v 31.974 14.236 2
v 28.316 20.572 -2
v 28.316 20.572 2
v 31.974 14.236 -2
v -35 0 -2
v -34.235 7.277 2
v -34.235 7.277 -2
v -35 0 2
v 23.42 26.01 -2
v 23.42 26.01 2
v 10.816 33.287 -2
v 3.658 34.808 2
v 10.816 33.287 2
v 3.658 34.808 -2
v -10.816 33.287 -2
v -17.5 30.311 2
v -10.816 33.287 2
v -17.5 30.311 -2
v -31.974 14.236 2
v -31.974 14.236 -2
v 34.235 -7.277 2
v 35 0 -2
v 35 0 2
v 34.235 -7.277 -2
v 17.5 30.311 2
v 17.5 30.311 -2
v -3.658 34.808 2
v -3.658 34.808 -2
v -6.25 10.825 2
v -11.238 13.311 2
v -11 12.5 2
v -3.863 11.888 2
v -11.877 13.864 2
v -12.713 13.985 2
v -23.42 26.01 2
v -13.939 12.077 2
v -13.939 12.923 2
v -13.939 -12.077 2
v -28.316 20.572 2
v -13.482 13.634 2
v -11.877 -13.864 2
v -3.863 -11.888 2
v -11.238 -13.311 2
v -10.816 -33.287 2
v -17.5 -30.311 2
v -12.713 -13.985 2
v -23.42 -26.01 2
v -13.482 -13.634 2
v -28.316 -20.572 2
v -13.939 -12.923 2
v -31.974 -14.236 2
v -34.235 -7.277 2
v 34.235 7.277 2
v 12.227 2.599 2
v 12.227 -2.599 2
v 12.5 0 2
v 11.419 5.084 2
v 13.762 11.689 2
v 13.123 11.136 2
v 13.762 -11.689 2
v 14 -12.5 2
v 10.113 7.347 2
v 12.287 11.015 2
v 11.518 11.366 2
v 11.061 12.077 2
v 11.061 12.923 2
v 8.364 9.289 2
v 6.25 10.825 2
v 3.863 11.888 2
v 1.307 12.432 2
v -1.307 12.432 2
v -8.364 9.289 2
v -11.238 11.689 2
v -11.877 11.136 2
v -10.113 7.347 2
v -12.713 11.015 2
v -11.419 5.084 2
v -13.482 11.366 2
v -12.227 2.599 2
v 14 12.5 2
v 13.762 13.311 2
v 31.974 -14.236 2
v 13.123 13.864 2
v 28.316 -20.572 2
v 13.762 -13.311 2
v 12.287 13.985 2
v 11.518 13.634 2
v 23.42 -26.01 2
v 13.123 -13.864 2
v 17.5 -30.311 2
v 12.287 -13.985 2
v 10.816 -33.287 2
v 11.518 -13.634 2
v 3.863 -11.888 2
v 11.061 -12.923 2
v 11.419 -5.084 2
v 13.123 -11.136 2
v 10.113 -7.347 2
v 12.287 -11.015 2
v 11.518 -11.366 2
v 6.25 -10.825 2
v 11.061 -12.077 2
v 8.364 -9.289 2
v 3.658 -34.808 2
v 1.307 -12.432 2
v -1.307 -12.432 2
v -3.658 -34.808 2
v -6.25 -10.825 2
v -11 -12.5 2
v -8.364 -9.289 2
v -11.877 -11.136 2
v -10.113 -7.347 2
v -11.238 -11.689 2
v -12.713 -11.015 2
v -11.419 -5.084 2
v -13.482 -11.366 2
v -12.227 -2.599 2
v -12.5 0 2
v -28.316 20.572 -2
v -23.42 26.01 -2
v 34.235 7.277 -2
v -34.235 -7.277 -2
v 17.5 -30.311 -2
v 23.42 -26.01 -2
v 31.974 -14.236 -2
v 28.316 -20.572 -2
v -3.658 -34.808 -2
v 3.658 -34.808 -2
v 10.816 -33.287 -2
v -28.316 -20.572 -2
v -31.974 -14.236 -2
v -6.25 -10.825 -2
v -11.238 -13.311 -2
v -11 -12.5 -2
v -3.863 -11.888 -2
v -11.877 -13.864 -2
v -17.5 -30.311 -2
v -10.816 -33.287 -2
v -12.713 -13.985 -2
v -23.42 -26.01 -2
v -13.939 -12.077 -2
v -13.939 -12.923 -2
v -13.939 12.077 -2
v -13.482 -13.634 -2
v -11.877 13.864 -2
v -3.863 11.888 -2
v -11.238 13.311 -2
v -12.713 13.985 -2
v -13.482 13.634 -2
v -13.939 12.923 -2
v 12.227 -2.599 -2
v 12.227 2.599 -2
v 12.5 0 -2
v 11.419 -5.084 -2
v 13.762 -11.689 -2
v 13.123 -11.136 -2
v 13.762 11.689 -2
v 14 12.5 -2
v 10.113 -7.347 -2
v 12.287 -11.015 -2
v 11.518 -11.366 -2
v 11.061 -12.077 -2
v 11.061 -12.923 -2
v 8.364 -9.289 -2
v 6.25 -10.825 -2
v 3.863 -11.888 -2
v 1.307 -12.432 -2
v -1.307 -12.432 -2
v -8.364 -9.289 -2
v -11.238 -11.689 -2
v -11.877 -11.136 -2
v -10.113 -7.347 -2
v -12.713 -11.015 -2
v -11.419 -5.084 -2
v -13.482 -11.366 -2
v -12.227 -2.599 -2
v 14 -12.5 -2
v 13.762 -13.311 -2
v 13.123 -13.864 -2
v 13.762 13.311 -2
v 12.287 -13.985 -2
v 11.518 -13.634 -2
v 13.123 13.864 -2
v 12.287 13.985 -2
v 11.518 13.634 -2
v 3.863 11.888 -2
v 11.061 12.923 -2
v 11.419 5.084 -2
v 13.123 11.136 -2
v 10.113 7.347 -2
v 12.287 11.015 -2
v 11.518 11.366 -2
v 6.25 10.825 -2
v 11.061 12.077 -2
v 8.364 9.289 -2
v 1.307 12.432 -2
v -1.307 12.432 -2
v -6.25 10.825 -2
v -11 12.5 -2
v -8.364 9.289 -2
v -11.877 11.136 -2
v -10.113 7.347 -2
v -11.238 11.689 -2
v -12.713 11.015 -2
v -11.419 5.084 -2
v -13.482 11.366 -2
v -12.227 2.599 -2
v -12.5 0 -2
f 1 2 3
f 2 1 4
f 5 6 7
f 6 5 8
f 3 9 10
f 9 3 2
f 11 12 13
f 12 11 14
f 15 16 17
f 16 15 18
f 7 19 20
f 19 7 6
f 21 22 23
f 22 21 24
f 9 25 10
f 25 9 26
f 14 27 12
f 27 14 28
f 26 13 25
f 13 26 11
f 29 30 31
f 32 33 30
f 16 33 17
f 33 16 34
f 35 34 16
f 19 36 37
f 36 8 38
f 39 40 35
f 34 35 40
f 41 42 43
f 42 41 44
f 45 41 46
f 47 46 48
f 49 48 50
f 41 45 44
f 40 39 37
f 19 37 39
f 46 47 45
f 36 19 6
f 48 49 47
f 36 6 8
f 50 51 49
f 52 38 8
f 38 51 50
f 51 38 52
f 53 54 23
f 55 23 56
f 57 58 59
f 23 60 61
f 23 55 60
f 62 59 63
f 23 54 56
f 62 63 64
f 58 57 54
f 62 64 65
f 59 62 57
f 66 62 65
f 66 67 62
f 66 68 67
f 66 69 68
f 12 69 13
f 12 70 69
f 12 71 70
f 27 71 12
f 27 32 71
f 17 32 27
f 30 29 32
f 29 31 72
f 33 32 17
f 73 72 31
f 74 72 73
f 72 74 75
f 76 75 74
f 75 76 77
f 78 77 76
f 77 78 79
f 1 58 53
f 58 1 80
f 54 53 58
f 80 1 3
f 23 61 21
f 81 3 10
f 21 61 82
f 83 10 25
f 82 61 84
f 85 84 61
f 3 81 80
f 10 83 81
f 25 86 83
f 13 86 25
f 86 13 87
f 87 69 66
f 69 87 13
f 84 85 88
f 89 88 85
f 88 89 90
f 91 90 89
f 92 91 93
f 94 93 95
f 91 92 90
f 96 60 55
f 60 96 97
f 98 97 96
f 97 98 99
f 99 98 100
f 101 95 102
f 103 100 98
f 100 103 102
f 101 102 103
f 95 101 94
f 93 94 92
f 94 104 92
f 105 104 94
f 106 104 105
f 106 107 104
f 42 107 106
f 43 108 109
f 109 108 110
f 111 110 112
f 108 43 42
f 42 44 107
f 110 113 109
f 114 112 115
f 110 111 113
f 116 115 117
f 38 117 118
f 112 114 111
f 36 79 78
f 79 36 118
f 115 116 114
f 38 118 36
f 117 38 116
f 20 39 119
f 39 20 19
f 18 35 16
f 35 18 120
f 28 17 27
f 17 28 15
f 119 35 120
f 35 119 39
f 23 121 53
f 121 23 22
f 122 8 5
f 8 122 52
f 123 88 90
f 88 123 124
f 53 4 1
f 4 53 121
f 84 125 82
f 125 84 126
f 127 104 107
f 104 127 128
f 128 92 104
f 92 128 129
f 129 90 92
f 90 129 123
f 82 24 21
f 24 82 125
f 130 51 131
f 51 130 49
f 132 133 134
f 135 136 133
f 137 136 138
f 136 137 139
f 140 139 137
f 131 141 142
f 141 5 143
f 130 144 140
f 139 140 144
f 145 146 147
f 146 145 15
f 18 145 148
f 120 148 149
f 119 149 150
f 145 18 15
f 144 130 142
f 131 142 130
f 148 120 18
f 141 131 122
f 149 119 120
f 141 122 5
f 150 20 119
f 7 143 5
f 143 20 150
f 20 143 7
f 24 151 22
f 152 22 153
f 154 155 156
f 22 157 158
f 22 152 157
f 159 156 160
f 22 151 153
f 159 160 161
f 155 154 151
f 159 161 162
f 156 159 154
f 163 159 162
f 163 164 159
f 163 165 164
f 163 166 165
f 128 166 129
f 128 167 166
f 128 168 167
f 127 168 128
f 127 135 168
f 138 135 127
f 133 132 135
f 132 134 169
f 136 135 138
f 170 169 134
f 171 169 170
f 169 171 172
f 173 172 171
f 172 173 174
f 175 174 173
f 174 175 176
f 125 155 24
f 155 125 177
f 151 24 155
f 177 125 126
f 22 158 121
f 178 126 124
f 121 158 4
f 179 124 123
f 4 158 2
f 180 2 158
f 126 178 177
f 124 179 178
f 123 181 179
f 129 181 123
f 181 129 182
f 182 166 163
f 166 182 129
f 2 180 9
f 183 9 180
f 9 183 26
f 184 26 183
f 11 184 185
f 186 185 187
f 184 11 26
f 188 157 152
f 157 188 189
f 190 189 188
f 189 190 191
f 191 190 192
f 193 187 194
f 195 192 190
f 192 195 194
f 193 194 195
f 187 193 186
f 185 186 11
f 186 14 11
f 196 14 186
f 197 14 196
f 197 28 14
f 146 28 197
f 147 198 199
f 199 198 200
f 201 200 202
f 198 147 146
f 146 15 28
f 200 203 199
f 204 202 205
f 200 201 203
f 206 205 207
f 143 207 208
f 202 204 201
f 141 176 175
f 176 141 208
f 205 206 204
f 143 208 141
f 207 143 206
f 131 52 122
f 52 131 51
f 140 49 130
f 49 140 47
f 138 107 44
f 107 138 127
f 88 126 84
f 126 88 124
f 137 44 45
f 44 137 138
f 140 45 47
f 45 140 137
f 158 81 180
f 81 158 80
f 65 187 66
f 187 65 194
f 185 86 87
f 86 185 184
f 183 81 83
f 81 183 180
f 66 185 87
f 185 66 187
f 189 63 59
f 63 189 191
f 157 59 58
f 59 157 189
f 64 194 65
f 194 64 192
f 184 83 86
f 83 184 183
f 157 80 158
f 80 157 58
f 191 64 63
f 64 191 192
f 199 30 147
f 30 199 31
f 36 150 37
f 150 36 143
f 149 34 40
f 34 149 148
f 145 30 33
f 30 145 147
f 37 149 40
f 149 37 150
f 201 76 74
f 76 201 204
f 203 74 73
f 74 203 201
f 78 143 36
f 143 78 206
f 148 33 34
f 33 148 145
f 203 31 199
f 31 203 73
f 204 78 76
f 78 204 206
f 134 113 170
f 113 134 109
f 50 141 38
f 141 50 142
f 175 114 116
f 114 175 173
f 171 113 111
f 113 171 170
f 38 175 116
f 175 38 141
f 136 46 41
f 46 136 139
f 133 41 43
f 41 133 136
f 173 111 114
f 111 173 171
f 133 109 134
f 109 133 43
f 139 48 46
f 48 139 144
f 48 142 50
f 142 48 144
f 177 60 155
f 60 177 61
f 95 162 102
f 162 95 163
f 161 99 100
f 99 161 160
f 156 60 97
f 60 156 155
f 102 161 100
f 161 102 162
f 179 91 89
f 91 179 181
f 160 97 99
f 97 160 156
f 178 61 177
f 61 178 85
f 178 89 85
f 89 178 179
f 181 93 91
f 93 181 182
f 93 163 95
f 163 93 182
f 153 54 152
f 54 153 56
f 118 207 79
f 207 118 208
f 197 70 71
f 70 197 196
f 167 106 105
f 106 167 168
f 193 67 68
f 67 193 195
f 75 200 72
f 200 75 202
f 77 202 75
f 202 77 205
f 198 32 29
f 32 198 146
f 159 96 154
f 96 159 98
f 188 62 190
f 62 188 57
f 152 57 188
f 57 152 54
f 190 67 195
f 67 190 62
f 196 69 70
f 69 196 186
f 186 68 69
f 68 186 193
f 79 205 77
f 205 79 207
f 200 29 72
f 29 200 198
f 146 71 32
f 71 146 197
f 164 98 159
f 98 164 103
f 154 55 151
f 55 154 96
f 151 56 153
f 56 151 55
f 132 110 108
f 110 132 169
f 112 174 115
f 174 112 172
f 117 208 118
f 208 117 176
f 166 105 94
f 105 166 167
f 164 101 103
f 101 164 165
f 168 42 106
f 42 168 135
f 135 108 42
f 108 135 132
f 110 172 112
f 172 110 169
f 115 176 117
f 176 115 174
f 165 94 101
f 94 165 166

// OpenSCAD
difference(){
//cube([50,50,4],center=true);
cylinder(h=4,r=35,center=true);
translate([12.5,12.5,0]) {
   cylinder(h=5,r=1.5,center=true,$fn=11);
   }
translate([-12.5,12.5,0]) {
   cylinder(h=5,r=1.5,center=true,$fn=11);
   }
translate([-12.5,-12.5,0]) {
   cylinder(h=5,r=1.5,center=true,$fn=11);
   }
translate([12.5,-12.5,0]) {
   cylinder(h=5,r=1.5,center=true,$fn=11);
   }
cylinder(h=5,r=12.5,center=true);
}
